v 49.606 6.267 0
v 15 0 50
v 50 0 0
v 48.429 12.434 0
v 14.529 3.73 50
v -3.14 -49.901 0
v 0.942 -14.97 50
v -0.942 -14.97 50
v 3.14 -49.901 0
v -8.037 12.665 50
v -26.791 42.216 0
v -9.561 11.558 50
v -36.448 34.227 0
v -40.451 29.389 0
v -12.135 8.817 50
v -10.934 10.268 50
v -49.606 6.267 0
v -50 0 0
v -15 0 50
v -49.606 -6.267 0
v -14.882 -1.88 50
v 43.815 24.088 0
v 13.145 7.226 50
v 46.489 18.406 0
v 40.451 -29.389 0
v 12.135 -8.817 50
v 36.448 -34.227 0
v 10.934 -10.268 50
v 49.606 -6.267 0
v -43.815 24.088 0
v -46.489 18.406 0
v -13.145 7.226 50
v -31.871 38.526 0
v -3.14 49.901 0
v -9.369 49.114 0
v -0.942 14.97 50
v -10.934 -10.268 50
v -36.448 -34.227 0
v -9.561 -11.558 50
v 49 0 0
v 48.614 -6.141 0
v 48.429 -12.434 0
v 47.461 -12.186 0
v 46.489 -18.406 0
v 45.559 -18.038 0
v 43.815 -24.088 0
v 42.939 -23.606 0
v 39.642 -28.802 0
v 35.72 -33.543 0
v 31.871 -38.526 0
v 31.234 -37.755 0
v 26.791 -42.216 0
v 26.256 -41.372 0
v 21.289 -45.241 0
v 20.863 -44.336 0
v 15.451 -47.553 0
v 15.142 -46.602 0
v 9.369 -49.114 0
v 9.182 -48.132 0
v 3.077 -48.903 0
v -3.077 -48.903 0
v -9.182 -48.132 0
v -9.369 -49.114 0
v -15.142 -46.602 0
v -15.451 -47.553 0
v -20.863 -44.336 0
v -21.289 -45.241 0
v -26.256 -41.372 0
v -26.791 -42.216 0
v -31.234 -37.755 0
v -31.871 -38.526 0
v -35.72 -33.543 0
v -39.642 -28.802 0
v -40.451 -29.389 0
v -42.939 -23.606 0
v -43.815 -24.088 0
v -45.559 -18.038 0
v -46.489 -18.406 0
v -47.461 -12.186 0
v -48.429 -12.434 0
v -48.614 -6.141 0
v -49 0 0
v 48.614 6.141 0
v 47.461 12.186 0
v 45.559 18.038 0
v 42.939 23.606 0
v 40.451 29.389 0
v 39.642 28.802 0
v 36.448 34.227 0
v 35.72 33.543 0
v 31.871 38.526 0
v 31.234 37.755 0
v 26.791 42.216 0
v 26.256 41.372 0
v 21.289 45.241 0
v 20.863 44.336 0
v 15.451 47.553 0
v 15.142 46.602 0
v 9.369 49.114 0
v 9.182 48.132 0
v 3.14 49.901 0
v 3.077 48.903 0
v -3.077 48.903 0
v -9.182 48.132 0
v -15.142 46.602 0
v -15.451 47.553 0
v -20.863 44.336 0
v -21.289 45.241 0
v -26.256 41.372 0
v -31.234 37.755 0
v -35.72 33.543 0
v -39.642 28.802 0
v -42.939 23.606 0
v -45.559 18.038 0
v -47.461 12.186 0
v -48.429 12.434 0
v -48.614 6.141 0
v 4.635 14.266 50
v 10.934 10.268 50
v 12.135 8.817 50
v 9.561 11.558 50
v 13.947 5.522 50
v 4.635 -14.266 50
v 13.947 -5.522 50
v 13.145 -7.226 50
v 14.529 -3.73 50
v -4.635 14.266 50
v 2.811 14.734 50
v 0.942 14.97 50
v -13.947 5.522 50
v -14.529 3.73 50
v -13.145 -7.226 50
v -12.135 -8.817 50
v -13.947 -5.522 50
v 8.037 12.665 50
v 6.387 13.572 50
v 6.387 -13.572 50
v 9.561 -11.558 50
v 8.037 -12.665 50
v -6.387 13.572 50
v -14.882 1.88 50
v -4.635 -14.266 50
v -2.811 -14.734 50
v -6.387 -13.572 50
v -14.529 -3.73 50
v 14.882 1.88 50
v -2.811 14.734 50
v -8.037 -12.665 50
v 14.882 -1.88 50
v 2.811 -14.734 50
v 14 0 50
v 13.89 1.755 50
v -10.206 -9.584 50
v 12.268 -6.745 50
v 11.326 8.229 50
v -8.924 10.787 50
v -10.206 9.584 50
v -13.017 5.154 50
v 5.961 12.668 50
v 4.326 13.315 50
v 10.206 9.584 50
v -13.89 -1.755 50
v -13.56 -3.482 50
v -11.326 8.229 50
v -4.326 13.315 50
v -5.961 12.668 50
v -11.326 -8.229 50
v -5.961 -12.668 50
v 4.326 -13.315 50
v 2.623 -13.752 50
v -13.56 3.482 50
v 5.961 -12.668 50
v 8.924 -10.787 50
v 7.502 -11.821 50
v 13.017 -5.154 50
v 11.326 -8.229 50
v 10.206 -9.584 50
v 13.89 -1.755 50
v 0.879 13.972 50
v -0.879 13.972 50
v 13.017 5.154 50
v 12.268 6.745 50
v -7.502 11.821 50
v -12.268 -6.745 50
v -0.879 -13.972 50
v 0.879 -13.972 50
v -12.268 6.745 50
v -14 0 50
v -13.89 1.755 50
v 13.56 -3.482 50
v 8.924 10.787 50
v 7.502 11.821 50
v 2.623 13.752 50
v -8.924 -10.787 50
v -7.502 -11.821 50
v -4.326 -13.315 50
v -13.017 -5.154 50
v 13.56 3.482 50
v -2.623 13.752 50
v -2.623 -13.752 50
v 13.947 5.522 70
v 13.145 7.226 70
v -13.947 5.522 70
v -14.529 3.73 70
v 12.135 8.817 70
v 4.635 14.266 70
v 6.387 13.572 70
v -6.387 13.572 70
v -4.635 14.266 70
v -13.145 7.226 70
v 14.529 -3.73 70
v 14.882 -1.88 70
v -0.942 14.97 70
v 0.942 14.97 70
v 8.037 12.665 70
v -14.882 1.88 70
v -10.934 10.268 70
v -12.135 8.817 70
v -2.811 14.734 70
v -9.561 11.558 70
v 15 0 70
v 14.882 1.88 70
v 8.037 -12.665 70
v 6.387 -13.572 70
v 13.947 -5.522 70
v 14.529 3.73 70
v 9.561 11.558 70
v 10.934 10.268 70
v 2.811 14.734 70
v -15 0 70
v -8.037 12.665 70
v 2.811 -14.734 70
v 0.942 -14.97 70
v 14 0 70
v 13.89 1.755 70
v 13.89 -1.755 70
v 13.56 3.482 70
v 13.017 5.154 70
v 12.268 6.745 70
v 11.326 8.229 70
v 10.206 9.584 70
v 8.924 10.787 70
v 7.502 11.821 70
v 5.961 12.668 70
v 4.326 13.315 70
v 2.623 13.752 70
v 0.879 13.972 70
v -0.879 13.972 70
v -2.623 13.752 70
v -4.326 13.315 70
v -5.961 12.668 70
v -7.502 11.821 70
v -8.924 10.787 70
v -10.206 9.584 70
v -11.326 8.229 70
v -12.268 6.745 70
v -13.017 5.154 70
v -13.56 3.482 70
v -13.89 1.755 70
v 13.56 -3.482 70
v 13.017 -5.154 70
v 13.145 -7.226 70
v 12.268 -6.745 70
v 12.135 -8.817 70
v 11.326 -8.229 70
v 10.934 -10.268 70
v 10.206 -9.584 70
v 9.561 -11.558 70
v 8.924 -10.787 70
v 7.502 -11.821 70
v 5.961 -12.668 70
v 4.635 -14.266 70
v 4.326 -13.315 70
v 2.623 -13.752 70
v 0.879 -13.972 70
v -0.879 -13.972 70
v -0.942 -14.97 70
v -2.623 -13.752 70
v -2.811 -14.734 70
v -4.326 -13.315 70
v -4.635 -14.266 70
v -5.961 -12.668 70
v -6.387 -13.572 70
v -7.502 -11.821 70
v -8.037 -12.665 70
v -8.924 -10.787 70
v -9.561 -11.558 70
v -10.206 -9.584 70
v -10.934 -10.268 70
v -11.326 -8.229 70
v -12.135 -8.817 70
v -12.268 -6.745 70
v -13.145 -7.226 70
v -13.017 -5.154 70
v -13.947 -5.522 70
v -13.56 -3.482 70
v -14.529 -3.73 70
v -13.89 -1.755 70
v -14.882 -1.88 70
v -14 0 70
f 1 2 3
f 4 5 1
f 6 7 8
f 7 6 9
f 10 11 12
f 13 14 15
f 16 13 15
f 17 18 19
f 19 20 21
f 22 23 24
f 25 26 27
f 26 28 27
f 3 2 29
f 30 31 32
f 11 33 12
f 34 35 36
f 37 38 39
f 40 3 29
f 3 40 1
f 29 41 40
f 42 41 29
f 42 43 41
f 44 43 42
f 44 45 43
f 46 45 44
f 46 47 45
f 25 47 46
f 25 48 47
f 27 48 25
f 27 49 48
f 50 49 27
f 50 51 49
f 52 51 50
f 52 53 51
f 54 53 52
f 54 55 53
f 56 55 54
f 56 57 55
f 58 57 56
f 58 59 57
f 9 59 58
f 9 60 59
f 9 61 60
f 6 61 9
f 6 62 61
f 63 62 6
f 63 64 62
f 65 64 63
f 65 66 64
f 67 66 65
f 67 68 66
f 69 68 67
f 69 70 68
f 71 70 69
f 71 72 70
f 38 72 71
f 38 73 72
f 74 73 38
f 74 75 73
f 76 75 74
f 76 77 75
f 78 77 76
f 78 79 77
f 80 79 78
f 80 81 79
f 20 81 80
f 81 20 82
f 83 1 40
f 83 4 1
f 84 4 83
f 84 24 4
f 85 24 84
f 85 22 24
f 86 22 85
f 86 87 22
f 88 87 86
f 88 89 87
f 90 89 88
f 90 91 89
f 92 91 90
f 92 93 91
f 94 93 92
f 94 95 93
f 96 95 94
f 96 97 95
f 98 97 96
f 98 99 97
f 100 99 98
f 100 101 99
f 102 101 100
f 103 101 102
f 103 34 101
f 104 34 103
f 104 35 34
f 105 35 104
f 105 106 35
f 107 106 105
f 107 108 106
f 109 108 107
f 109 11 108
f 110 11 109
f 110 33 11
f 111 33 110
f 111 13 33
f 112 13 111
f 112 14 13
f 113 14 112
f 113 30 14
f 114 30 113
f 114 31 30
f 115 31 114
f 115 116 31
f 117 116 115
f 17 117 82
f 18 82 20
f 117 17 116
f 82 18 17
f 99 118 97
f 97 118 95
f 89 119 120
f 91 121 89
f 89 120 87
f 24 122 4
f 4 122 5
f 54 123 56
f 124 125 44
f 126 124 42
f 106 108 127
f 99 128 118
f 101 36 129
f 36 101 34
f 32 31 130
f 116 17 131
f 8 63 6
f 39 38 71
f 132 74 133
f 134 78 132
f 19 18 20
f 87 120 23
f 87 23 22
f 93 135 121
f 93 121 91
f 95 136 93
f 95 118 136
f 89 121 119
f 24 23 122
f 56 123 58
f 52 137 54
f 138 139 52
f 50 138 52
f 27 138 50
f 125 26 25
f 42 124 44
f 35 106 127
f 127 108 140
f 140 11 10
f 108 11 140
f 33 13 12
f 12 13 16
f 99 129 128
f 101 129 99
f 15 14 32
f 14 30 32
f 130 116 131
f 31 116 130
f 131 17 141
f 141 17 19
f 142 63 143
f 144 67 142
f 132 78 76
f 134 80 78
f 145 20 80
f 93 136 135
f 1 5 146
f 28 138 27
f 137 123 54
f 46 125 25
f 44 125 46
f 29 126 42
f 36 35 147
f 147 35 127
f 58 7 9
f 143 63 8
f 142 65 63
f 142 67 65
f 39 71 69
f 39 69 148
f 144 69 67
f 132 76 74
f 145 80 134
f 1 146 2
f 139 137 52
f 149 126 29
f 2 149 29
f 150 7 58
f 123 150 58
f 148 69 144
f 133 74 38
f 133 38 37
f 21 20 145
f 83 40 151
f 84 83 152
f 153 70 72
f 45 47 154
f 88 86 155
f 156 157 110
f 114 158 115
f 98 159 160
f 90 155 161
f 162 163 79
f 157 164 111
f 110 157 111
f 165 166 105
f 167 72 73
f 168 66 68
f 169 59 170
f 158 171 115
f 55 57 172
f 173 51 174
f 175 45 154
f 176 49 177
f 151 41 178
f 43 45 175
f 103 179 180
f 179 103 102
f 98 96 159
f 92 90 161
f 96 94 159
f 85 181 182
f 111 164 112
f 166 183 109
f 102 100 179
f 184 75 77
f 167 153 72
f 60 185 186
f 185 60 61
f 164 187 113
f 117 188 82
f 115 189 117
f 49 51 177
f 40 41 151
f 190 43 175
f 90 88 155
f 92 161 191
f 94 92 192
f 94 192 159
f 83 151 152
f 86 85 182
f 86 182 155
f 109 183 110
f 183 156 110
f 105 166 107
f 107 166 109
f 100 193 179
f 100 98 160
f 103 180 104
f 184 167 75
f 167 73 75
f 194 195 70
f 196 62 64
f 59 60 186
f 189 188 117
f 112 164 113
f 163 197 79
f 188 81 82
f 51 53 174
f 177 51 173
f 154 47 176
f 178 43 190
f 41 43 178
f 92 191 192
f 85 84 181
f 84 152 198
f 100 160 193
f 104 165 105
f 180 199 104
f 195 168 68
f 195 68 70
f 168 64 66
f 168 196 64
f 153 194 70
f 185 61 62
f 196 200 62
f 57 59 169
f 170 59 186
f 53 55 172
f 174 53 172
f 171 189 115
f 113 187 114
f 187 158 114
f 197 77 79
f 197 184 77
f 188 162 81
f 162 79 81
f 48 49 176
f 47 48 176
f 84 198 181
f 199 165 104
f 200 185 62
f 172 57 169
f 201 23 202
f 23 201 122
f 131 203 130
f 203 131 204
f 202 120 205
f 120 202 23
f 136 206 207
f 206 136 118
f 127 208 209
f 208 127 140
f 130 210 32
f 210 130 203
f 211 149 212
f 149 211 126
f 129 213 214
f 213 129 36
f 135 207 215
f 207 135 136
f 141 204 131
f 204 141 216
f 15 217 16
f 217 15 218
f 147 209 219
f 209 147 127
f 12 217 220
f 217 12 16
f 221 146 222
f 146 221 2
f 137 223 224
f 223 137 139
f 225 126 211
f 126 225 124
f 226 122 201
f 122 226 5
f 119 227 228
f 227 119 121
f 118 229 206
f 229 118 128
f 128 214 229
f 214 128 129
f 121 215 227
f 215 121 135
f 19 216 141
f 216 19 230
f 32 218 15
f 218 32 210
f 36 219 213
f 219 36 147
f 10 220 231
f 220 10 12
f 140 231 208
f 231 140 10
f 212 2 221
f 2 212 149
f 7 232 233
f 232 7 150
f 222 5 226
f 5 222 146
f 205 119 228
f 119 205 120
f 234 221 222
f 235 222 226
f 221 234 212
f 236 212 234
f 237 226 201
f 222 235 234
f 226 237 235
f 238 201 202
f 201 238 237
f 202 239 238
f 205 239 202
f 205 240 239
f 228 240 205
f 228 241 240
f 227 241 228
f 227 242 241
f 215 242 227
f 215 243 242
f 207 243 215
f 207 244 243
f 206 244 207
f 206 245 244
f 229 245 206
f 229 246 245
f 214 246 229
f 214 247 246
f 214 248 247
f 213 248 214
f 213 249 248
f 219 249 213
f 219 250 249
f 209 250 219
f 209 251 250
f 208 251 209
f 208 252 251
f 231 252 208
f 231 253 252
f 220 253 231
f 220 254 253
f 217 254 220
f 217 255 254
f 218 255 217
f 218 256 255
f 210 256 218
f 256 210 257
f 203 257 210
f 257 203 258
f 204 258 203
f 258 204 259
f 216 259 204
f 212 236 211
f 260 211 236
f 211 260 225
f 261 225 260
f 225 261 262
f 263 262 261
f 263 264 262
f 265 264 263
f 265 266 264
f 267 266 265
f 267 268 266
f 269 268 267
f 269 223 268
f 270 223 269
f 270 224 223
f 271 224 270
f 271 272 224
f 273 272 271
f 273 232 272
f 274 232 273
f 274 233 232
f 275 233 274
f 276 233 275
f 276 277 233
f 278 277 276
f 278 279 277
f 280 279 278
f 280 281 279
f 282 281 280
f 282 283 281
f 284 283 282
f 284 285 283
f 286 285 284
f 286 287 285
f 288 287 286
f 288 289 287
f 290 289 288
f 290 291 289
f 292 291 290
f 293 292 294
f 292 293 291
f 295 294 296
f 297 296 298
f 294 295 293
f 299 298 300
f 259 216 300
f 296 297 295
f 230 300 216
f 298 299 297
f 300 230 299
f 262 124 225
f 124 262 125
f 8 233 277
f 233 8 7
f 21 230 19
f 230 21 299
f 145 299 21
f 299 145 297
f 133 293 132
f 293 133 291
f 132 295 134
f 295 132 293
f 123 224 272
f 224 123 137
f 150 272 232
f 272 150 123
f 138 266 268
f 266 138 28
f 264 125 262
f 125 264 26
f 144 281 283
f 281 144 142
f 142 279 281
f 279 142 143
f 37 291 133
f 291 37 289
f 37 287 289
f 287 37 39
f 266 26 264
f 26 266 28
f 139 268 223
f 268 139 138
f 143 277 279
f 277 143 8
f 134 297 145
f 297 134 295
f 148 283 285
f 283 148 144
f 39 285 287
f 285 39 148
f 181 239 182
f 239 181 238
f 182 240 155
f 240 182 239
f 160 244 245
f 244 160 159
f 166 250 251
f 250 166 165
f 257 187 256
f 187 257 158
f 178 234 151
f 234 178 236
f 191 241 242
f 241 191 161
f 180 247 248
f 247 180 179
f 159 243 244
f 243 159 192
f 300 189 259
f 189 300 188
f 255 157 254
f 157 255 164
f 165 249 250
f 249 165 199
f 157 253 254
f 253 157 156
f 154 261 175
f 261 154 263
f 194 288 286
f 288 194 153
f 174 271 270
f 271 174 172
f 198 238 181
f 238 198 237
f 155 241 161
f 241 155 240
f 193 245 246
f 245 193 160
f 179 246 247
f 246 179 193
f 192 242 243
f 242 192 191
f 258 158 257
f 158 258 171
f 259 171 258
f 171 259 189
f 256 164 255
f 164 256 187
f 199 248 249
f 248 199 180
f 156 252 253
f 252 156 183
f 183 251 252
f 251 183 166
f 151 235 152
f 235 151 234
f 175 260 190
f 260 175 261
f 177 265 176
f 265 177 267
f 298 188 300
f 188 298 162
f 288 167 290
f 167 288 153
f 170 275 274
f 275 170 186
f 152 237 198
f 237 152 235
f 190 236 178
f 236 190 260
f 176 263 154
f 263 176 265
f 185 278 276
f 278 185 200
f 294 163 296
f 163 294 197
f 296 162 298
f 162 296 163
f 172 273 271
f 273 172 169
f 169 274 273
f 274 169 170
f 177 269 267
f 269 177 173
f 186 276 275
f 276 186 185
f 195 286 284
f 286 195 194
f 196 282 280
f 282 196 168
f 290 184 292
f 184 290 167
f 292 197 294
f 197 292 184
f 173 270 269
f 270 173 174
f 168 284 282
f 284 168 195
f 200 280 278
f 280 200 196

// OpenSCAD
$fn = 50;


difference() {
	union() {
		translate(v = [0, 0, 0]) {
			rotate(a = [0, 0, 0]) {
				difference() {
					union() {
						cylinder(h = 50, r1 = 50.0000000000, r2 = 15.0000000000);
					}
					union() {
						cylinder(h = 50, r1 = 49.0000000000, r2 = 14.0000000000);
					}
				}
			}
		}
		translate(v = [0, 0, 50]) {
			rotate(a = [0, 0, 0]) {
				difference() {
					union() {
						cylinder(h = 20, r = 15.0000000000);
					}
					union() {
						cylinder(h = 20, r = 14.0000000000);
					}
				}
			}
		}
	}
	union();
}
